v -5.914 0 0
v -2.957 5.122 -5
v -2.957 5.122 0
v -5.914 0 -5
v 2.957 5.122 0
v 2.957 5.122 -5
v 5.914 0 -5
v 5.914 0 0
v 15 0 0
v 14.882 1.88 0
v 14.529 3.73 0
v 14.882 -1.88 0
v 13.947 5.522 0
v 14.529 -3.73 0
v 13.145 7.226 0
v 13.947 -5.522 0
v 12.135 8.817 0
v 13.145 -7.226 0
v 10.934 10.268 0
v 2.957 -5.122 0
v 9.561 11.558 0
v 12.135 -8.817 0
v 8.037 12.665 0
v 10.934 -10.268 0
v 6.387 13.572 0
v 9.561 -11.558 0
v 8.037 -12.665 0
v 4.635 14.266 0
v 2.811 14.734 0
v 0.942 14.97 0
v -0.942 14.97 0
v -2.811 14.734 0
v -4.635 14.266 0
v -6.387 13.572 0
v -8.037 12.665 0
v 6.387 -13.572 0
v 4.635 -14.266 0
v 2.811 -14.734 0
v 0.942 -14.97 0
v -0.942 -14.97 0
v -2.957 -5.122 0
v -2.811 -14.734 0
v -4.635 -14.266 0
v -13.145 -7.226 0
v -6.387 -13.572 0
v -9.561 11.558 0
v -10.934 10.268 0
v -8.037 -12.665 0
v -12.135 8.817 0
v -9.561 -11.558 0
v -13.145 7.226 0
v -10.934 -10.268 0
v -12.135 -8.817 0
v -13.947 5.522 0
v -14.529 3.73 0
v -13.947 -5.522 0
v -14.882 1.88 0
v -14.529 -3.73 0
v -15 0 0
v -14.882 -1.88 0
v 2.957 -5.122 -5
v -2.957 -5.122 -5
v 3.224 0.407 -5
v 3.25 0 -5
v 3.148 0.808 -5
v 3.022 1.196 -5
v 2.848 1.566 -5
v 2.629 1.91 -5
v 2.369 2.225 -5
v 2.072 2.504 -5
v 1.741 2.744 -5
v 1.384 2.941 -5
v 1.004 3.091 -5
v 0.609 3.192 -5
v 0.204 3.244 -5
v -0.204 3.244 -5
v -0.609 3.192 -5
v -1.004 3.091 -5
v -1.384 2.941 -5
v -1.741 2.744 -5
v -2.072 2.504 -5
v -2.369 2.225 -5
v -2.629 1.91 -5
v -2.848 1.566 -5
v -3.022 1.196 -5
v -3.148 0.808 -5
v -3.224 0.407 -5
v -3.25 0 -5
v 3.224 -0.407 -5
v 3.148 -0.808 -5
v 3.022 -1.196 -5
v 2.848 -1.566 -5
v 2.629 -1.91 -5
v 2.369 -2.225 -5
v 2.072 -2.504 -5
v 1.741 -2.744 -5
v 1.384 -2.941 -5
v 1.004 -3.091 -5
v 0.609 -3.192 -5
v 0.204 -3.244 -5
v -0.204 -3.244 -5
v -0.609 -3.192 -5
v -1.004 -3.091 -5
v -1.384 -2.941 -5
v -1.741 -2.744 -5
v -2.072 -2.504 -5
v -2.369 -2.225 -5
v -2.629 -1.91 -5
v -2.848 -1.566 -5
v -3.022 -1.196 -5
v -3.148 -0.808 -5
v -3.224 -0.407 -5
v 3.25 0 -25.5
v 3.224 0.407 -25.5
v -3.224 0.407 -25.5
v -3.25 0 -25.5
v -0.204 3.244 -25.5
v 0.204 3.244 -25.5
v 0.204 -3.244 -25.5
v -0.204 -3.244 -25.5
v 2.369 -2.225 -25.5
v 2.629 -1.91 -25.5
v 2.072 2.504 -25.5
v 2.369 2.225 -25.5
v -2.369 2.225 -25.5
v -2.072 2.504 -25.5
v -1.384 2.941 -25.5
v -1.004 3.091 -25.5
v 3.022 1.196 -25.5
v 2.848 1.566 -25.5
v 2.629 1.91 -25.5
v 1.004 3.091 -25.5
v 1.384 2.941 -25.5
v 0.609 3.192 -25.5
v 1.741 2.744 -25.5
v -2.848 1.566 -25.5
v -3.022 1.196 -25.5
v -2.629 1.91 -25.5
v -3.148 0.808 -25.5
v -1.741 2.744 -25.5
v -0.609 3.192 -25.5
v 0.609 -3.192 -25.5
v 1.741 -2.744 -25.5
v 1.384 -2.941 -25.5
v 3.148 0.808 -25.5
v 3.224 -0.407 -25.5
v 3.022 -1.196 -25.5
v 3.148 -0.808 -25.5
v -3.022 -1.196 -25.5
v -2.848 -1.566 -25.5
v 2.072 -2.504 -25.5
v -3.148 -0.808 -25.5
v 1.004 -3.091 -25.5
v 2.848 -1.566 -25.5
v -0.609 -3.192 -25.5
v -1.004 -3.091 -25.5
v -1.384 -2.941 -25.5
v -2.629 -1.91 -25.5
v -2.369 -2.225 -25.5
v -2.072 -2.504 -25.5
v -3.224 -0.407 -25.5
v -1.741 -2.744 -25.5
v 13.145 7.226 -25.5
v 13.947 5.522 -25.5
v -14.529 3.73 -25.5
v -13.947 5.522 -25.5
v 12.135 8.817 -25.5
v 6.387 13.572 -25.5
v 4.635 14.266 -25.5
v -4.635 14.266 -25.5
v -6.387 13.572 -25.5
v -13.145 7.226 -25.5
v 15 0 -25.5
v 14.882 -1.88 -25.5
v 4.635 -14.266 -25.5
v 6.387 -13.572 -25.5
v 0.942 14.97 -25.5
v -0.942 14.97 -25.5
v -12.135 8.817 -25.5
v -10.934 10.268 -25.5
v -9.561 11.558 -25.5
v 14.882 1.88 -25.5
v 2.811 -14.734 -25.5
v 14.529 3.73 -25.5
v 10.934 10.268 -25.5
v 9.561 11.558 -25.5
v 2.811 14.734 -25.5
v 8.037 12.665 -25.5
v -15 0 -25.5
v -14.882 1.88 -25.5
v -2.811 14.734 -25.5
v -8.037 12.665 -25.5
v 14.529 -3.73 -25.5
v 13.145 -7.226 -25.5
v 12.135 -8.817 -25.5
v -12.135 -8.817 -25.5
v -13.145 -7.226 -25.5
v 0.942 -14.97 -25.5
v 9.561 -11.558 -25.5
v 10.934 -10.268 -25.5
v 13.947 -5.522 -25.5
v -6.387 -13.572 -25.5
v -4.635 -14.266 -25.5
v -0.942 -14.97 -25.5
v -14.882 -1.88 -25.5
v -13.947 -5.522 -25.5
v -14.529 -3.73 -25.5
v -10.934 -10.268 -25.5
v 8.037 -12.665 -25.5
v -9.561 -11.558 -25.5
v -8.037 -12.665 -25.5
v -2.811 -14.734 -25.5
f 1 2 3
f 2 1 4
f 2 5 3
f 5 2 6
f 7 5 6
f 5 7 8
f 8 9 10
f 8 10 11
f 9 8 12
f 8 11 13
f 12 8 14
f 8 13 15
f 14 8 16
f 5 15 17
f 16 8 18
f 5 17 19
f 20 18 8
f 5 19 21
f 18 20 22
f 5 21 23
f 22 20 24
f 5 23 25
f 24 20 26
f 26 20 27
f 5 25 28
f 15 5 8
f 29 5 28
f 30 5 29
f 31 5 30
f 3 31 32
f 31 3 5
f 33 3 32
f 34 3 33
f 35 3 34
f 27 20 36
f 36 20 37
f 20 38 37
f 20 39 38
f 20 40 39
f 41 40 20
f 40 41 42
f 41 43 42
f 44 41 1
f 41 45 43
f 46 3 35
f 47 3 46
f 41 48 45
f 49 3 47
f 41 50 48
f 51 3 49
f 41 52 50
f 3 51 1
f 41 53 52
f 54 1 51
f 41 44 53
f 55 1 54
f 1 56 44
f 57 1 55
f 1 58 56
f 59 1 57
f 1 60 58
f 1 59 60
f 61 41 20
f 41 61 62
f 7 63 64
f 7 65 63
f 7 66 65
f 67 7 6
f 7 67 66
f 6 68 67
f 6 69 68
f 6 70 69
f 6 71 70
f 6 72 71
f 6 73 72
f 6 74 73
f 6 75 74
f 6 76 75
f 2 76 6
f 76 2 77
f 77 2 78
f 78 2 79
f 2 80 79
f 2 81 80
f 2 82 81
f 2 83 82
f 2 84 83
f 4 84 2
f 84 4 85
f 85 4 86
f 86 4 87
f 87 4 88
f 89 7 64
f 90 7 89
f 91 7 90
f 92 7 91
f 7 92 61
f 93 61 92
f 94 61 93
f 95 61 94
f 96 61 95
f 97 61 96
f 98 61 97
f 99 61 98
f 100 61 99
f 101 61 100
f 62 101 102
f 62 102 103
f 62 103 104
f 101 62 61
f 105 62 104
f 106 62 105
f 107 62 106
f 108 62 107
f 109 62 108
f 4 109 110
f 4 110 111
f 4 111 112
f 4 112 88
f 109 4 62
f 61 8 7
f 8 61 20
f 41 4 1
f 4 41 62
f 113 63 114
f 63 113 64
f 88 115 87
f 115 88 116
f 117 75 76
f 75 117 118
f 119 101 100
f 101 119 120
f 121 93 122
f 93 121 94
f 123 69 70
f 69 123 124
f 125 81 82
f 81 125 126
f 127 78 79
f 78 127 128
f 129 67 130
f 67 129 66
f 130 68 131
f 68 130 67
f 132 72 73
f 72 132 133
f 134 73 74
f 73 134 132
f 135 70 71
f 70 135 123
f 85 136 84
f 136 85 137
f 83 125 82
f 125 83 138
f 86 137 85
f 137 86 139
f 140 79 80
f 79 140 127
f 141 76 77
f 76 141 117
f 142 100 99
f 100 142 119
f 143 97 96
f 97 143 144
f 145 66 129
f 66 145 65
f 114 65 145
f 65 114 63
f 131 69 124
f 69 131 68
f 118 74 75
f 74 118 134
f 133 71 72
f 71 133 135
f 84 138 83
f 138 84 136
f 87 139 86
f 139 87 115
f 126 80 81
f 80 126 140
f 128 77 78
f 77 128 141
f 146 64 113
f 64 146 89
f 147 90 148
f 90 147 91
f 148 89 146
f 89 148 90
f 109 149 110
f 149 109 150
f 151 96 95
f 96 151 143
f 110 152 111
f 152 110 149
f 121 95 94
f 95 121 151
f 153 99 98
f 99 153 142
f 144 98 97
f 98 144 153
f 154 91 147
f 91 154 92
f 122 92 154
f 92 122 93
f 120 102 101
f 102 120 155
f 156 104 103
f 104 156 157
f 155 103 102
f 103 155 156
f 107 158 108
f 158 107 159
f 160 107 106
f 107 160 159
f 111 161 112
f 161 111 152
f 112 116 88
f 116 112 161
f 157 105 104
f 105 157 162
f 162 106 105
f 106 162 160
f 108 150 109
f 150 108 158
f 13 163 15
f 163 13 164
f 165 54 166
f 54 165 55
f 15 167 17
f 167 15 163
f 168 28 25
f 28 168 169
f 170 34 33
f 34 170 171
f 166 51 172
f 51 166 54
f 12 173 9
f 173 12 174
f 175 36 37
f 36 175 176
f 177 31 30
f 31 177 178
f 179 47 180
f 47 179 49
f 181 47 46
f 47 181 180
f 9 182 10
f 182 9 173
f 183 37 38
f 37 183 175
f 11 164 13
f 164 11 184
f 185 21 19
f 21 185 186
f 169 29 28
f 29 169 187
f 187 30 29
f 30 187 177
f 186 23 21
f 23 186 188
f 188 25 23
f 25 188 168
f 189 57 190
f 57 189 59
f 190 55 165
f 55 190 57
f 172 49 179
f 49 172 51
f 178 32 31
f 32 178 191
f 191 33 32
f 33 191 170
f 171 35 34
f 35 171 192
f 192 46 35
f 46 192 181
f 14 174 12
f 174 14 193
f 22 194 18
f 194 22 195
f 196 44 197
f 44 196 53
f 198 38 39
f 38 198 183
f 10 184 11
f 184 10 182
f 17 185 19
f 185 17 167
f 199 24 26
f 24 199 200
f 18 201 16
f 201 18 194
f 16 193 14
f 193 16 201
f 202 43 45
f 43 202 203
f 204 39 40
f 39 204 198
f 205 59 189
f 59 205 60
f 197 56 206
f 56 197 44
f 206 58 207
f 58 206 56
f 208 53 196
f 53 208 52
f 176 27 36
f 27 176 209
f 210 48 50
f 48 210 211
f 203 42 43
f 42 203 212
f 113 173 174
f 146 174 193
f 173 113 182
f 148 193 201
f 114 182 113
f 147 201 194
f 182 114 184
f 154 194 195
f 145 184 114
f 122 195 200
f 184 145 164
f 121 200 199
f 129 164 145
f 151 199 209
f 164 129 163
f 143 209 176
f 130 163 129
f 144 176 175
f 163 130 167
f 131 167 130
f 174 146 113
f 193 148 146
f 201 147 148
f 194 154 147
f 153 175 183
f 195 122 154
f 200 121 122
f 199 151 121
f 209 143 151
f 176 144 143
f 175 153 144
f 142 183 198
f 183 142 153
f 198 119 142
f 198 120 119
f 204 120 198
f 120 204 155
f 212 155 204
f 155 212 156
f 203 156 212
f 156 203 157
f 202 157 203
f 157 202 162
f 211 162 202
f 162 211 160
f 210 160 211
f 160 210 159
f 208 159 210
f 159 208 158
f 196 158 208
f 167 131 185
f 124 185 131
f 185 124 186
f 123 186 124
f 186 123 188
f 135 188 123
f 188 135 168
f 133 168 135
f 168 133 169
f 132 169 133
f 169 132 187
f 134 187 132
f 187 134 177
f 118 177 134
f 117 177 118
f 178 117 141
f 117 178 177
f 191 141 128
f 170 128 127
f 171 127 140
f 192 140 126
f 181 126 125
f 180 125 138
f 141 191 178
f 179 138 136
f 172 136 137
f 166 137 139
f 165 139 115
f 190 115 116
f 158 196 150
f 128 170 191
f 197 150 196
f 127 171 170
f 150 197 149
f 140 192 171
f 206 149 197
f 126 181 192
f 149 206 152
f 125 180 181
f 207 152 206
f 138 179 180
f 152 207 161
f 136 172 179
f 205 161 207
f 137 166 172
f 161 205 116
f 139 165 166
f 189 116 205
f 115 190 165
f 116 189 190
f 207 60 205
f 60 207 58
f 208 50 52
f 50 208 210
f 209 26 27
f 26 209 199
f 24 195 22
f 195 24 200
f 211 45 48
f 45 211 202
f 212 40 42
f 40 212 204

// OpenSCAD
$fn = 50;

difference() {
	union() {
		translate(v = [0, 0, -25.5]) {
			cylinder(h = 25.5, r = 15.0);
		}
	}
	union() {
		translate(v = [0, 0, 0]) {
			rotate(a = [0, 0, 0]) {
				difference() {
					union() {
						translate(v = [0, 0, -5]) {
							linear_extrude(height = 5) {
								polygon(points = [[5.914249999999999, 0.0], [2.957125, 5.1218907443321156], [-2.9571249999999982, 5.1218907443321156], [-5.914249999999999, 7.242867331857232e-16], [-2.9571250000000022, -5.121890744332115], [2.9571249999999956, -5.121890744332118]]);
							}
						}
					}
					union();
				}
			}
		}
		#translate(v = [0, 0, -100.0]) {
			cylinder(h = 200, r = 3.25);
		}
	}
}
